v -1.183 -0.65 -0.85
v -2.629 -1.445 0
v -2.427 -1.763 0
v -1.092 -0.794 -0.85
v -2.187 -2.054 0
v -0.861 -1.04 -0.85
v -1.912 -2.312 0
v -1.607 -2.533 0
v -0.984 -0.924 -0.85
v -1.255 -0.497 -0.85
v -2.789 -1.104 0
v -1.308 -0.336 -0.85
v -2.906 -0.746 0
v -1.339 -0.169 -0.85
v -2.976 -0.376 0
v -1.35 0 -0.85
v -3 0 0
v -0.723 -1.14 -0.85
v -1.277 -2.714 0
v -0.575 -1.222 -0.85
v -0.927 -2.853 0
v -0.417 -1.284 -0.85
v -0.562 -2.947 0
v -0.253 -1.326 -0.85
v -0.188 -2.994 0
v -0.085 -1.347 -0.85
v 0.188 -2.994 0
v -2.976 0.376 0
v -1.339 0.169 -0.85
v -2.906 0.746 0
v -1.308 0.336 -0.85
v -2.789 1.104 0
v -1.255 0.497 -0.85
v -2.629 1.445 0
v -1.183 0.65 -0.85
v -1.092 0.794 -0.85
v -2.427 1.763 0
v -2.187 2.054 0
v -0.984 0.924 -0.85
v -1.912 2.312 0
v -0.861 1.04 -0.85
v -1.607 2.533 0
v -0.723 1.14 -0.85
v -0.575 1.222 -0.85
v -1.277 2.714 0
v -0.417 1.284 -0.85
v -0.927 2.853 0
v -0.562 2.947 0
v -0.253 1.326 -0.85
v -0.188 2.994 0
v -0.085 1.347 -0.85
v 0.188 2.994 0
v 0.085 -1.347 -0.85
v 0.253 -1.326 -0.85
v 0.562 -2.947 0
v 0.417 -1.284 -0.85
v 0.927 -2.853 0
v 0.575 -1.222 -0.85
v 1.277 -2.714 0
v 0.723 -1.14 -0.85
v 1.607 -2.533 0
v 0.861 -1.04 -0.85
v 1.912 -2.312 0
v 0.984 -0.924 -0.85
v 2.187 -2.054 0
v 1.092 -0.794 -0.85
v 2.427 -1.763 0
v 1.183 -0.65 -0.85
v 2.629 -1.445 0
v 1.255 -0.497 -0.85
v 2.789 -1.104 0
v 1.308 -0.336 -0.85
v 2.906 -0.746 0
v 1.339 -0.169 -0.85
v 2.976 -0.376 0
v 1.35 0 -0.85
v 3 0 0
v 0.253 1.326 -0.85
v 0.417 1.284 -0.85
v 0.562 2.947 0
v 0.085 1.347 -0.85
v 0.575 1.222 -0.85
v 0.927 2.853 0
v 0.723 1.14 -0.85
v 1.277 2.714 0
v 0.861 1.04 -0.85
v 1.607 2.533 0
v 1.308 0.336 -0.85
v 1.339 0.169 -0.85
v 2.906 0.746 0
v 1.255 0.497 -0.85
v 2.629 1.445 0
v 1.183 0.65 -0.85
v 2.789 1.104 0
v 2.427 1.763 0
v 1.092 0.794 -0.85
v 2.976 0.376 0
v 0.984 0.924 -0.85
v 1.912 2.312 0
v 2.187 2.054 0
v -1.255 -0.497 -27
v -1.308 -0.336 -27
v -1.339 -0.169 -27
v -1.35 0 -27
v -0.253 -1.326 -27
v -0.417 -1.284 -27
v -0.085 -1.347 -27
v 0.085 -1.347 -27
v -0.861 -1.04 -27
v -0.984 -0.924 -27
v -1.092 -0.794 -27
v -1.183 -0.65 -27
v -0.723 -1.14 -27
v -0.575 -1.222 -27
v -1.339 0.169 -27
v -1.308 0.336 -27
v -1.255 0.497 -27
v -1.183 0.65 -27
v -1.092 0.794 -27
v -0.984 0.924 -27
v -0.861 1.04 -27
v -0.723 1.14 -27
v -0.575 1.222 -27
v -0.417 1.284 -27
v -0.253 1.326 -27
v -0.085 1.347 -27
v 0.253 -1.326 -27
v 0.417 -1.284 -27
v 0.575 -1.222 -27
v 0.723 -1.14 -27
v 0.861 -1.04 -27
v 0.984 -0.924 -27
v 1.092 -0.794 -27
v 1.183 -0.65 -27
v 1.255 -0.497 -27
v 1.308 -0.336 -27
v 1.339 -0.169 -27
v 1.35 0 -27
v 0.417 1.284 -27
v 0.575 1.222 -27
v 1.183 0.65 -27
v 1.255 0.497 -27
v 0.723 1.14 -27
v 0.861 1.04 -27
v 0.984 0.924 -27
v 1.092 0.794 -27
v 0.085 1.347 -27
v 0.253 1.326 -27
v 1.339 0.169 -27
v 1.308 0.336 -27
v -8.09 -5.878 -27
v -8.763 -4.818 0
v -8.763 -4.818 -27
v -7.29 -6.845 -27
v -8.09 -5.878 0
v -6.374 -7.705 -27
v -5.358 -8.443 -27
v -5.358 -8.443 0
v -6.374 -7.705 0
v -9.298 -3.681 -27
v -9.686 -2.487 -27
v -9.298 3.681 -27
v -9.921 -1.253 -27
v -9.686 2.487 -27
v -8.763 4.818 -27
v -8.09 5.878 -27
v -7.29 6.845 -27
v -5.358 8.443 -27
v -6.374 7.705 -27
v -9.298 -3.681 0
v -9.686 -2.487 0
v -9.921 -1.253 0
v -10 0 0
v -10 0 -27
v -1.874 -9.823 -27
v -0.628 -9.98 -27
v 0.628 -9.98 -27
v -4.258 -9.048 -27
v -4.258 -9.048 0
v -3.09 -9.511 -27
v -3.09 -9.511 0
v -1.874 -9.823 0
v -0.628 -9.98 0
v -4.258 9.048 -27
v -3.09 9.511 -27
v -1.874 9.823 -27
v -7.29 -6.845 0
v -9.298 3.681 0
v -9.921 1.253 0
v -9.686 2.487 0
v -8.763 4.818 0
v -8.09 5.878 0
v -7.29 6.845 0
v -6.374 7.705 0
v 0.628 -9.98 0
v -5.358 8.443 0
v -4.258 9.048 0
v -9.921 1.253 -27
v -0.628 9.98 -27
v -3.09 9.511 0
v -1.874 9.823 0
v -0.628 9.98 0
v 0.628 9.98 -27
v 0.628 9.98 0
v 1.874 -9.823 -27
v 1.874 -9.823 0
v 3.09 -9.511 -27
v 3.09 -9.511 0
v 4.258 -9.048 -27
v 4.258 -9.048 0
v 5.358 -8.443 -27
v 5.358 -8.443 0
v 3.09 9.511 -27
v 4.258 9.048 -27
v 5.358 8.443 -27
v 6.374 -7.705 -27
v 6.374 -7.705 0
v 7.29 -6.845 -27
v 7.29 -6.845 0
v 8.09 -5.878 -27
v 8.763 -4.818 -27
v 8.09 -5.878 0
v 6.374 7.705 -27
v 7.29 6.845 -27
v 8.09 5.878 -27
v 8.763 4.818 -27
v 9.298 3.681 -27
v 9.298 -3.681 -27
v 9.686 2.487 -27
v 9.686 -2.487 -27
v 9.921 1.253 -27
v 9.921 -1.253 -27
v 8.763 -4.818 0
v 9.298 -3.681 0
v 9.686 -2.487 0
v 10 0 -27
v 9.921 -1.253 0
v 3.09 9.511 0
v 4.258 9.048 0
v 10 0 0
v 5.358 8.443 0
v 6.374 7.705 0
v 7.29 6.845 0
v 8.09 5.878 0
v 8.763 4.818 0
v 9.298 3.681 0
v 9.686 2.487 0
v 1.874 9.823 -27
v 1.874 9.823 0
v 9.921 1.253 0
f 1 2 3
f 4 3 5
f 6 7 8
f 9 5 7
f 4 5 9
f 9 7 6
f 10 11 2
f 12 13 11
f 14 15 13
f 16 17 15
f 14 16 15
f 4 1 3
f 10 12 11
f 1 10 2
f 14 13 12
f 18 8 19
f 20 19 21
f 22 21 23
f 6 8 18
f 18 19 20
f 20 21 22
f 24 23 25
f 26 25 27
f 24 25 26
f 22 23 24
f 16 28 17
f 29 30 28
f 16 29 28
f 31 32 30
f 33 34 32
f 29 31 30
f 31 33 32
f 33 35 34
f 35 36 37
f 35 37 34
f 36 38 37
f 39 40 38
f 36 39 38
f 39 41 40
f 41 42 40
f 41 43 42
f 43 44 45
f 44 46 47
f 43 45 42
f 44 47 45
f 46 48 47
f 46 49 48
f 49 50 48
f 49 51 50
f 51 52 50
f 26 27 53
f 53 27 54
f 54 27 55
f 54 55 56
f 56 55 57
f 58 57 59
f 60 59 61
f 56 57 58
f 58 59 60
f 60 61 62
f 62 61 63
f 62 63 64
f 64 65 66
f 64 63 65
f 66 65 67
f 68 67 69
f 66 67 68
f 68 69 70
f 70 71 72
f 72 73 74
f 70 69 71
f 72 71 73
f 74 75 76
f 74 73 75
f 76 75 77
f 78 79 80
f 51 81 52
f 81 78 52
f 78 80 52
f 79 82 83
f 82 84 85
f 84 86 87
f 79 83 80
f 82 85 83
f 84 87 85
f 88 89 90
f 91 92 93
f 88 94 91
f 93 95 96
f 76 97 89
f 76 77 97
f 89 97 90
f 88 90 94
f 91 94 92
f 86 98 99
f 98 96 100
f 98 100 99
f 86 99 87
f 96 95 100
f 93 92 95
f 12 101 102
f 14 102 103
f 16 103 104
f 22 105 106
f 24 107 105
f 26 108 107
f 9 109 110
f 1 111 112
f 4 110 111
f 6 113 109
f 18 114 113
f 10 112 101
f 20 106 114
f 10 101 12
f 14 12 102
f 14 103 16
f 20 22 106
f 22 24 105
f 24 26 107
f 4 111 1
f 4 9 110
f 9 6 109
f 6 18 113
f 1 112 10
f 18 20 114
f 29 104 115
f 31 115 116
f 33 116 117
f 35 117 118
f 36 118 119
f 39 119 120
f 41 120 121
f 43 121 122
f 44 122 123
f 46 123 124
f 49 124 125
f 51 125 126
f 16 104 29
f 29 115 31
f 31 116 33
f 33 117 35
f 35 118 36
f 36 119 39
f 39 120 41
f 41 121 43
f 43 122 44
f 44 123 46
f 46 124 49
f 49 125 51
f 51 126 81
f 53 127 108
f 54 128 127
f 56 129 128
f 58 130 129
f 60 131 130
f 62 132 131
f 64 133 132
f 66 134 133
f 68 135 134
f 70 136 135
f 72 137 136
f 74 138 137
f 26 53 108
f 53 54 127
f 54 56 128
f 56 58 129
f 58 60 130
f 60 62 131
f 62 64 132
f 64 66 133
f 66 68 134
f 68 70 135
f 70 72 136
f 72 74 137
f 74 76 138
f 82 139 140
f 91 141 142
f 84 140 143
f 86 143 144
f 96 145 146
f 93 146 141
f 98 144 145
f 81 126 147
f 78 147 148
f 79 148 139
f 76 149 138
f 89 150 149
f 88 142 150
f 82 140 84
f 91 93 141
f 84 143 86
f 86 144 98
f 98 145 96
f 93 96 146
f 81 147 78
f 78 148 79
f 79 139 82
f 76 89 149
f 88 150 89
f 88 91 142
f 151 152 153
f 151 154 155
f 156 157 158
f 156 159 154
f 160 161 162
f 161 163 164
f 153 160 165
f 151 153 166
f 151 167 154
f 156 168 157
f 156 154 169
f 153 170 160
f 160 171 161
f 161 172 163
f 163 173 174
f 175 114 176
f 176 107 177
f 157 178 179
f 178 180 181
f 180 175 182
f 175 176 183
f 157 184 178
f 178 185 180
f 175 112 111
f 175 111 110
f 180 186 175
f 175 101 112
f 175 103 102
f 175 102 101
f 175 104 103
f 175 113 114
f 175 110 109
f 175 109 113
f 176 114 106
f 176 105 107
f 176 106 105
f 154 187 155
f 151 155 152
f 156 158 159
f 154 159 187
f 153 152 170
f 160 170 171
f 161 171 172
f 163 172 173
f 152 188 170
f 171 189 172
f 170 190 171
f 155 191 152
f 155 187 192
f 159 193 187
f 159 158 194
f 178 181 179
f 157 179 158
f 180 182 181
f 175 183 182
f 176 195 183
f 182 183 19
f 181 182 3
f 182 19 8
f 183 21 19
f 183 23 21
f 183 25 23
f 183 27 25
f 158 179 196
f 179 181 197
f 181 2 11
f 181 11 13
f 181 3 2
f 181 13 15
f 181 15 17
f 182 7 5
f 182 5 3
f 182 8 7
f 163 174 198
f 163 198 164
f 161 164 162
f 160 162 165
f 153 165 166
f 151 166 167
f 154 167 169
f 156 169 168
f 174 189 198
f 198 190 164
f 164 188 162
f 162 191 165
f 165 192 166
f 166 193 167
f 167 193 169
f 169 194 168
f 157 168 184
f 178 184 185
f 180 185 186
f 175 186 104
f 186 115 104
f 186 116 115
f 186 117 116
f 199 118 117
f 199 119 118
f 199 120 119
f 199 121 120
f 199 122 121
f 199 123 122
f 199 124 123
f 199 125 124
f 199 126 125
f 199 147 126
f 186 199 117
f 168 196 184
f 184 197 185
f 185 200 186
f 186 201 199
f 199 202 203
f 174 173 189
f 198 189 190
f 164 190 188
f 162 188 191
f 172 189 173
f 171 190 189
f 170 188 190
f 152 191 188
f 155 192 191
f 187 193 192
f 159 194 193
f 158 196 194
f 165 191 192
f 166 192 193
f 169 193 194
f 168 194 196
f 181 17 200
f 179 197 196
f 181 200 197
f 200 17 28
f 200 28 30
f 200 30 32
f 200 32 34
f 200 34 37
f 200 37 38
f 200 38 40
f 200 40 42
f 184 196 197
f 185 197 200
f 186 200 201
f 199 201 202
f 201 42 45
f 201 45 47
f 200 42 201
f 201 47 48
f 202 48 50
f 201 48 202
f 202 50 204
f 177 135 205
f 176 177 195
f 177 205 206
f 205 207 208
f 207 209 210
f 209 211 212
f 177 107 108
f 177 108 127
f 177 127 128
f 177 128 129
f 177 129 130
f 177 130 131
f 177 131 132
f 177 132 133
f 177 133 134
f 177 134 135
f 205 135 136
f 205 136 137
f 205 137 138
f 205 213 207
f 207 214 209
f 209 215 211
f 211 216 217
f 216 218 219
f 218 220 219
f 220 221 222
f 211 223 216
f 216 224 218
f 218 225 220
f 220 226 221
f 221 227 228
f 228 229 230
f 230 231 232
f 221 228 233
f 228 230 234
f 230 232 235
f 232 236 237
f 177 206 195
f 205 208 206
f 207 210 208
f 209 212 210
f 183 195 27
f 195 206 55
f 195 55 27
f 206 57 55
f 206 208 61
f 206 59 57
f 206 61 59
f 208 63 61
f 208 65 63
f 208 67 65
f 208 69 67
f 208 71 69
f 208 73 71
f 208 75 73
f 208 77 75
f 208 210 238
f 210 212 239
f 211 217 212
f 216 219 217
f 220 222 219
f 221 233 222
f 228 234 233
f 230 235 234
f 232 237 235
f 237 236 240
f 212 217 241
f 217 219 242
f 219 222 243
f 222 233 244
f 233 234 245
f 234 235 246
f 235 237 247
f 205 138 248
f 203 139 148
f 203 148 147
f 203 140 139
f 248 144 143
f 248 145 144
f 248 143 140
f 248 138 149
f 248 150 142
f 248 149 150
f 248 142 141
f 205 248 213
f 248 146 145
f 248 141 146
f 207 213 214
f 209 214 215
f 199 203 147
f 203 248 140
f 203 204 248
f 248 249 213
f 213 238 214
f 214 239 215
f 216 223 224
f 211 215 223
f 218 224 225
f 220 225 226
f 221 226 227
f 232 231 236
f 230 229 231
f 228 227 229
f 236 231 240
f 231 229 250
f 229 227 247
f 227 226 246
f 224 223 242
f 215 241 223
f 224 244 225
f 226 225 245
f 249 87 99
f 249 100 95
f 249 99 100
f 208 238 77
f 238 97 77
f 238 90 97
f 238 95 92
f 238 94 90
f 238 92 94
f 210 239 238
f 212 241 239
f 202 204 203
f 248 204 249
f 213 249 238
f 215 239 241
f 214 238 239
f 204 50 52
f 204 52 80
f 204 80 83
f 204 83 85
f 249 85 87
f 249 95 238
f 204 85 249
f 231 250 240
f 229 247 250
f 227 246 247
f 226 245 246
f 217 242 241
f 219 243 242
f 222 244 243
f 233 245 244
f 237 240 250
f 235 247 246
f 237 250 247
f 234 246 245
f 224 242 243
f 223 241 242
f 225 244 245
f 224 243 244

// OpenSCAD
$fn = 50;


difference() {
	union() {
		translate(v = [0, 0, -27.0000000000]) {
			cylinder(h = 27, r = 10.0000000000);
		}
	}
	union() {
		translate(v = [0, 0, 0]) {
			rotate(a = [0, 0, 0]) {
				difference() {
					union() {
						translate(v = [0, 0, -30.0000000000]) {
							cylinder(h = 30, r = 1.0000000000);
						}
						translate(v = [0, 0, -0.8500000000]) {
							cylinder(h = 0.8500000000, r1 = 1.3500000000, r2 = 3.0000000000);
						}
						translate(v = [0, 0, -30.0000000000]) {
							cylinder(h = 30, r = 1.3500000000);
						}
						translate(v = [0, 0, -30.0000000000]) {
							cylinder(h = 30, r = 1.0000000000);
						}
					}
					union();
				}
			}
		}
	}
}
